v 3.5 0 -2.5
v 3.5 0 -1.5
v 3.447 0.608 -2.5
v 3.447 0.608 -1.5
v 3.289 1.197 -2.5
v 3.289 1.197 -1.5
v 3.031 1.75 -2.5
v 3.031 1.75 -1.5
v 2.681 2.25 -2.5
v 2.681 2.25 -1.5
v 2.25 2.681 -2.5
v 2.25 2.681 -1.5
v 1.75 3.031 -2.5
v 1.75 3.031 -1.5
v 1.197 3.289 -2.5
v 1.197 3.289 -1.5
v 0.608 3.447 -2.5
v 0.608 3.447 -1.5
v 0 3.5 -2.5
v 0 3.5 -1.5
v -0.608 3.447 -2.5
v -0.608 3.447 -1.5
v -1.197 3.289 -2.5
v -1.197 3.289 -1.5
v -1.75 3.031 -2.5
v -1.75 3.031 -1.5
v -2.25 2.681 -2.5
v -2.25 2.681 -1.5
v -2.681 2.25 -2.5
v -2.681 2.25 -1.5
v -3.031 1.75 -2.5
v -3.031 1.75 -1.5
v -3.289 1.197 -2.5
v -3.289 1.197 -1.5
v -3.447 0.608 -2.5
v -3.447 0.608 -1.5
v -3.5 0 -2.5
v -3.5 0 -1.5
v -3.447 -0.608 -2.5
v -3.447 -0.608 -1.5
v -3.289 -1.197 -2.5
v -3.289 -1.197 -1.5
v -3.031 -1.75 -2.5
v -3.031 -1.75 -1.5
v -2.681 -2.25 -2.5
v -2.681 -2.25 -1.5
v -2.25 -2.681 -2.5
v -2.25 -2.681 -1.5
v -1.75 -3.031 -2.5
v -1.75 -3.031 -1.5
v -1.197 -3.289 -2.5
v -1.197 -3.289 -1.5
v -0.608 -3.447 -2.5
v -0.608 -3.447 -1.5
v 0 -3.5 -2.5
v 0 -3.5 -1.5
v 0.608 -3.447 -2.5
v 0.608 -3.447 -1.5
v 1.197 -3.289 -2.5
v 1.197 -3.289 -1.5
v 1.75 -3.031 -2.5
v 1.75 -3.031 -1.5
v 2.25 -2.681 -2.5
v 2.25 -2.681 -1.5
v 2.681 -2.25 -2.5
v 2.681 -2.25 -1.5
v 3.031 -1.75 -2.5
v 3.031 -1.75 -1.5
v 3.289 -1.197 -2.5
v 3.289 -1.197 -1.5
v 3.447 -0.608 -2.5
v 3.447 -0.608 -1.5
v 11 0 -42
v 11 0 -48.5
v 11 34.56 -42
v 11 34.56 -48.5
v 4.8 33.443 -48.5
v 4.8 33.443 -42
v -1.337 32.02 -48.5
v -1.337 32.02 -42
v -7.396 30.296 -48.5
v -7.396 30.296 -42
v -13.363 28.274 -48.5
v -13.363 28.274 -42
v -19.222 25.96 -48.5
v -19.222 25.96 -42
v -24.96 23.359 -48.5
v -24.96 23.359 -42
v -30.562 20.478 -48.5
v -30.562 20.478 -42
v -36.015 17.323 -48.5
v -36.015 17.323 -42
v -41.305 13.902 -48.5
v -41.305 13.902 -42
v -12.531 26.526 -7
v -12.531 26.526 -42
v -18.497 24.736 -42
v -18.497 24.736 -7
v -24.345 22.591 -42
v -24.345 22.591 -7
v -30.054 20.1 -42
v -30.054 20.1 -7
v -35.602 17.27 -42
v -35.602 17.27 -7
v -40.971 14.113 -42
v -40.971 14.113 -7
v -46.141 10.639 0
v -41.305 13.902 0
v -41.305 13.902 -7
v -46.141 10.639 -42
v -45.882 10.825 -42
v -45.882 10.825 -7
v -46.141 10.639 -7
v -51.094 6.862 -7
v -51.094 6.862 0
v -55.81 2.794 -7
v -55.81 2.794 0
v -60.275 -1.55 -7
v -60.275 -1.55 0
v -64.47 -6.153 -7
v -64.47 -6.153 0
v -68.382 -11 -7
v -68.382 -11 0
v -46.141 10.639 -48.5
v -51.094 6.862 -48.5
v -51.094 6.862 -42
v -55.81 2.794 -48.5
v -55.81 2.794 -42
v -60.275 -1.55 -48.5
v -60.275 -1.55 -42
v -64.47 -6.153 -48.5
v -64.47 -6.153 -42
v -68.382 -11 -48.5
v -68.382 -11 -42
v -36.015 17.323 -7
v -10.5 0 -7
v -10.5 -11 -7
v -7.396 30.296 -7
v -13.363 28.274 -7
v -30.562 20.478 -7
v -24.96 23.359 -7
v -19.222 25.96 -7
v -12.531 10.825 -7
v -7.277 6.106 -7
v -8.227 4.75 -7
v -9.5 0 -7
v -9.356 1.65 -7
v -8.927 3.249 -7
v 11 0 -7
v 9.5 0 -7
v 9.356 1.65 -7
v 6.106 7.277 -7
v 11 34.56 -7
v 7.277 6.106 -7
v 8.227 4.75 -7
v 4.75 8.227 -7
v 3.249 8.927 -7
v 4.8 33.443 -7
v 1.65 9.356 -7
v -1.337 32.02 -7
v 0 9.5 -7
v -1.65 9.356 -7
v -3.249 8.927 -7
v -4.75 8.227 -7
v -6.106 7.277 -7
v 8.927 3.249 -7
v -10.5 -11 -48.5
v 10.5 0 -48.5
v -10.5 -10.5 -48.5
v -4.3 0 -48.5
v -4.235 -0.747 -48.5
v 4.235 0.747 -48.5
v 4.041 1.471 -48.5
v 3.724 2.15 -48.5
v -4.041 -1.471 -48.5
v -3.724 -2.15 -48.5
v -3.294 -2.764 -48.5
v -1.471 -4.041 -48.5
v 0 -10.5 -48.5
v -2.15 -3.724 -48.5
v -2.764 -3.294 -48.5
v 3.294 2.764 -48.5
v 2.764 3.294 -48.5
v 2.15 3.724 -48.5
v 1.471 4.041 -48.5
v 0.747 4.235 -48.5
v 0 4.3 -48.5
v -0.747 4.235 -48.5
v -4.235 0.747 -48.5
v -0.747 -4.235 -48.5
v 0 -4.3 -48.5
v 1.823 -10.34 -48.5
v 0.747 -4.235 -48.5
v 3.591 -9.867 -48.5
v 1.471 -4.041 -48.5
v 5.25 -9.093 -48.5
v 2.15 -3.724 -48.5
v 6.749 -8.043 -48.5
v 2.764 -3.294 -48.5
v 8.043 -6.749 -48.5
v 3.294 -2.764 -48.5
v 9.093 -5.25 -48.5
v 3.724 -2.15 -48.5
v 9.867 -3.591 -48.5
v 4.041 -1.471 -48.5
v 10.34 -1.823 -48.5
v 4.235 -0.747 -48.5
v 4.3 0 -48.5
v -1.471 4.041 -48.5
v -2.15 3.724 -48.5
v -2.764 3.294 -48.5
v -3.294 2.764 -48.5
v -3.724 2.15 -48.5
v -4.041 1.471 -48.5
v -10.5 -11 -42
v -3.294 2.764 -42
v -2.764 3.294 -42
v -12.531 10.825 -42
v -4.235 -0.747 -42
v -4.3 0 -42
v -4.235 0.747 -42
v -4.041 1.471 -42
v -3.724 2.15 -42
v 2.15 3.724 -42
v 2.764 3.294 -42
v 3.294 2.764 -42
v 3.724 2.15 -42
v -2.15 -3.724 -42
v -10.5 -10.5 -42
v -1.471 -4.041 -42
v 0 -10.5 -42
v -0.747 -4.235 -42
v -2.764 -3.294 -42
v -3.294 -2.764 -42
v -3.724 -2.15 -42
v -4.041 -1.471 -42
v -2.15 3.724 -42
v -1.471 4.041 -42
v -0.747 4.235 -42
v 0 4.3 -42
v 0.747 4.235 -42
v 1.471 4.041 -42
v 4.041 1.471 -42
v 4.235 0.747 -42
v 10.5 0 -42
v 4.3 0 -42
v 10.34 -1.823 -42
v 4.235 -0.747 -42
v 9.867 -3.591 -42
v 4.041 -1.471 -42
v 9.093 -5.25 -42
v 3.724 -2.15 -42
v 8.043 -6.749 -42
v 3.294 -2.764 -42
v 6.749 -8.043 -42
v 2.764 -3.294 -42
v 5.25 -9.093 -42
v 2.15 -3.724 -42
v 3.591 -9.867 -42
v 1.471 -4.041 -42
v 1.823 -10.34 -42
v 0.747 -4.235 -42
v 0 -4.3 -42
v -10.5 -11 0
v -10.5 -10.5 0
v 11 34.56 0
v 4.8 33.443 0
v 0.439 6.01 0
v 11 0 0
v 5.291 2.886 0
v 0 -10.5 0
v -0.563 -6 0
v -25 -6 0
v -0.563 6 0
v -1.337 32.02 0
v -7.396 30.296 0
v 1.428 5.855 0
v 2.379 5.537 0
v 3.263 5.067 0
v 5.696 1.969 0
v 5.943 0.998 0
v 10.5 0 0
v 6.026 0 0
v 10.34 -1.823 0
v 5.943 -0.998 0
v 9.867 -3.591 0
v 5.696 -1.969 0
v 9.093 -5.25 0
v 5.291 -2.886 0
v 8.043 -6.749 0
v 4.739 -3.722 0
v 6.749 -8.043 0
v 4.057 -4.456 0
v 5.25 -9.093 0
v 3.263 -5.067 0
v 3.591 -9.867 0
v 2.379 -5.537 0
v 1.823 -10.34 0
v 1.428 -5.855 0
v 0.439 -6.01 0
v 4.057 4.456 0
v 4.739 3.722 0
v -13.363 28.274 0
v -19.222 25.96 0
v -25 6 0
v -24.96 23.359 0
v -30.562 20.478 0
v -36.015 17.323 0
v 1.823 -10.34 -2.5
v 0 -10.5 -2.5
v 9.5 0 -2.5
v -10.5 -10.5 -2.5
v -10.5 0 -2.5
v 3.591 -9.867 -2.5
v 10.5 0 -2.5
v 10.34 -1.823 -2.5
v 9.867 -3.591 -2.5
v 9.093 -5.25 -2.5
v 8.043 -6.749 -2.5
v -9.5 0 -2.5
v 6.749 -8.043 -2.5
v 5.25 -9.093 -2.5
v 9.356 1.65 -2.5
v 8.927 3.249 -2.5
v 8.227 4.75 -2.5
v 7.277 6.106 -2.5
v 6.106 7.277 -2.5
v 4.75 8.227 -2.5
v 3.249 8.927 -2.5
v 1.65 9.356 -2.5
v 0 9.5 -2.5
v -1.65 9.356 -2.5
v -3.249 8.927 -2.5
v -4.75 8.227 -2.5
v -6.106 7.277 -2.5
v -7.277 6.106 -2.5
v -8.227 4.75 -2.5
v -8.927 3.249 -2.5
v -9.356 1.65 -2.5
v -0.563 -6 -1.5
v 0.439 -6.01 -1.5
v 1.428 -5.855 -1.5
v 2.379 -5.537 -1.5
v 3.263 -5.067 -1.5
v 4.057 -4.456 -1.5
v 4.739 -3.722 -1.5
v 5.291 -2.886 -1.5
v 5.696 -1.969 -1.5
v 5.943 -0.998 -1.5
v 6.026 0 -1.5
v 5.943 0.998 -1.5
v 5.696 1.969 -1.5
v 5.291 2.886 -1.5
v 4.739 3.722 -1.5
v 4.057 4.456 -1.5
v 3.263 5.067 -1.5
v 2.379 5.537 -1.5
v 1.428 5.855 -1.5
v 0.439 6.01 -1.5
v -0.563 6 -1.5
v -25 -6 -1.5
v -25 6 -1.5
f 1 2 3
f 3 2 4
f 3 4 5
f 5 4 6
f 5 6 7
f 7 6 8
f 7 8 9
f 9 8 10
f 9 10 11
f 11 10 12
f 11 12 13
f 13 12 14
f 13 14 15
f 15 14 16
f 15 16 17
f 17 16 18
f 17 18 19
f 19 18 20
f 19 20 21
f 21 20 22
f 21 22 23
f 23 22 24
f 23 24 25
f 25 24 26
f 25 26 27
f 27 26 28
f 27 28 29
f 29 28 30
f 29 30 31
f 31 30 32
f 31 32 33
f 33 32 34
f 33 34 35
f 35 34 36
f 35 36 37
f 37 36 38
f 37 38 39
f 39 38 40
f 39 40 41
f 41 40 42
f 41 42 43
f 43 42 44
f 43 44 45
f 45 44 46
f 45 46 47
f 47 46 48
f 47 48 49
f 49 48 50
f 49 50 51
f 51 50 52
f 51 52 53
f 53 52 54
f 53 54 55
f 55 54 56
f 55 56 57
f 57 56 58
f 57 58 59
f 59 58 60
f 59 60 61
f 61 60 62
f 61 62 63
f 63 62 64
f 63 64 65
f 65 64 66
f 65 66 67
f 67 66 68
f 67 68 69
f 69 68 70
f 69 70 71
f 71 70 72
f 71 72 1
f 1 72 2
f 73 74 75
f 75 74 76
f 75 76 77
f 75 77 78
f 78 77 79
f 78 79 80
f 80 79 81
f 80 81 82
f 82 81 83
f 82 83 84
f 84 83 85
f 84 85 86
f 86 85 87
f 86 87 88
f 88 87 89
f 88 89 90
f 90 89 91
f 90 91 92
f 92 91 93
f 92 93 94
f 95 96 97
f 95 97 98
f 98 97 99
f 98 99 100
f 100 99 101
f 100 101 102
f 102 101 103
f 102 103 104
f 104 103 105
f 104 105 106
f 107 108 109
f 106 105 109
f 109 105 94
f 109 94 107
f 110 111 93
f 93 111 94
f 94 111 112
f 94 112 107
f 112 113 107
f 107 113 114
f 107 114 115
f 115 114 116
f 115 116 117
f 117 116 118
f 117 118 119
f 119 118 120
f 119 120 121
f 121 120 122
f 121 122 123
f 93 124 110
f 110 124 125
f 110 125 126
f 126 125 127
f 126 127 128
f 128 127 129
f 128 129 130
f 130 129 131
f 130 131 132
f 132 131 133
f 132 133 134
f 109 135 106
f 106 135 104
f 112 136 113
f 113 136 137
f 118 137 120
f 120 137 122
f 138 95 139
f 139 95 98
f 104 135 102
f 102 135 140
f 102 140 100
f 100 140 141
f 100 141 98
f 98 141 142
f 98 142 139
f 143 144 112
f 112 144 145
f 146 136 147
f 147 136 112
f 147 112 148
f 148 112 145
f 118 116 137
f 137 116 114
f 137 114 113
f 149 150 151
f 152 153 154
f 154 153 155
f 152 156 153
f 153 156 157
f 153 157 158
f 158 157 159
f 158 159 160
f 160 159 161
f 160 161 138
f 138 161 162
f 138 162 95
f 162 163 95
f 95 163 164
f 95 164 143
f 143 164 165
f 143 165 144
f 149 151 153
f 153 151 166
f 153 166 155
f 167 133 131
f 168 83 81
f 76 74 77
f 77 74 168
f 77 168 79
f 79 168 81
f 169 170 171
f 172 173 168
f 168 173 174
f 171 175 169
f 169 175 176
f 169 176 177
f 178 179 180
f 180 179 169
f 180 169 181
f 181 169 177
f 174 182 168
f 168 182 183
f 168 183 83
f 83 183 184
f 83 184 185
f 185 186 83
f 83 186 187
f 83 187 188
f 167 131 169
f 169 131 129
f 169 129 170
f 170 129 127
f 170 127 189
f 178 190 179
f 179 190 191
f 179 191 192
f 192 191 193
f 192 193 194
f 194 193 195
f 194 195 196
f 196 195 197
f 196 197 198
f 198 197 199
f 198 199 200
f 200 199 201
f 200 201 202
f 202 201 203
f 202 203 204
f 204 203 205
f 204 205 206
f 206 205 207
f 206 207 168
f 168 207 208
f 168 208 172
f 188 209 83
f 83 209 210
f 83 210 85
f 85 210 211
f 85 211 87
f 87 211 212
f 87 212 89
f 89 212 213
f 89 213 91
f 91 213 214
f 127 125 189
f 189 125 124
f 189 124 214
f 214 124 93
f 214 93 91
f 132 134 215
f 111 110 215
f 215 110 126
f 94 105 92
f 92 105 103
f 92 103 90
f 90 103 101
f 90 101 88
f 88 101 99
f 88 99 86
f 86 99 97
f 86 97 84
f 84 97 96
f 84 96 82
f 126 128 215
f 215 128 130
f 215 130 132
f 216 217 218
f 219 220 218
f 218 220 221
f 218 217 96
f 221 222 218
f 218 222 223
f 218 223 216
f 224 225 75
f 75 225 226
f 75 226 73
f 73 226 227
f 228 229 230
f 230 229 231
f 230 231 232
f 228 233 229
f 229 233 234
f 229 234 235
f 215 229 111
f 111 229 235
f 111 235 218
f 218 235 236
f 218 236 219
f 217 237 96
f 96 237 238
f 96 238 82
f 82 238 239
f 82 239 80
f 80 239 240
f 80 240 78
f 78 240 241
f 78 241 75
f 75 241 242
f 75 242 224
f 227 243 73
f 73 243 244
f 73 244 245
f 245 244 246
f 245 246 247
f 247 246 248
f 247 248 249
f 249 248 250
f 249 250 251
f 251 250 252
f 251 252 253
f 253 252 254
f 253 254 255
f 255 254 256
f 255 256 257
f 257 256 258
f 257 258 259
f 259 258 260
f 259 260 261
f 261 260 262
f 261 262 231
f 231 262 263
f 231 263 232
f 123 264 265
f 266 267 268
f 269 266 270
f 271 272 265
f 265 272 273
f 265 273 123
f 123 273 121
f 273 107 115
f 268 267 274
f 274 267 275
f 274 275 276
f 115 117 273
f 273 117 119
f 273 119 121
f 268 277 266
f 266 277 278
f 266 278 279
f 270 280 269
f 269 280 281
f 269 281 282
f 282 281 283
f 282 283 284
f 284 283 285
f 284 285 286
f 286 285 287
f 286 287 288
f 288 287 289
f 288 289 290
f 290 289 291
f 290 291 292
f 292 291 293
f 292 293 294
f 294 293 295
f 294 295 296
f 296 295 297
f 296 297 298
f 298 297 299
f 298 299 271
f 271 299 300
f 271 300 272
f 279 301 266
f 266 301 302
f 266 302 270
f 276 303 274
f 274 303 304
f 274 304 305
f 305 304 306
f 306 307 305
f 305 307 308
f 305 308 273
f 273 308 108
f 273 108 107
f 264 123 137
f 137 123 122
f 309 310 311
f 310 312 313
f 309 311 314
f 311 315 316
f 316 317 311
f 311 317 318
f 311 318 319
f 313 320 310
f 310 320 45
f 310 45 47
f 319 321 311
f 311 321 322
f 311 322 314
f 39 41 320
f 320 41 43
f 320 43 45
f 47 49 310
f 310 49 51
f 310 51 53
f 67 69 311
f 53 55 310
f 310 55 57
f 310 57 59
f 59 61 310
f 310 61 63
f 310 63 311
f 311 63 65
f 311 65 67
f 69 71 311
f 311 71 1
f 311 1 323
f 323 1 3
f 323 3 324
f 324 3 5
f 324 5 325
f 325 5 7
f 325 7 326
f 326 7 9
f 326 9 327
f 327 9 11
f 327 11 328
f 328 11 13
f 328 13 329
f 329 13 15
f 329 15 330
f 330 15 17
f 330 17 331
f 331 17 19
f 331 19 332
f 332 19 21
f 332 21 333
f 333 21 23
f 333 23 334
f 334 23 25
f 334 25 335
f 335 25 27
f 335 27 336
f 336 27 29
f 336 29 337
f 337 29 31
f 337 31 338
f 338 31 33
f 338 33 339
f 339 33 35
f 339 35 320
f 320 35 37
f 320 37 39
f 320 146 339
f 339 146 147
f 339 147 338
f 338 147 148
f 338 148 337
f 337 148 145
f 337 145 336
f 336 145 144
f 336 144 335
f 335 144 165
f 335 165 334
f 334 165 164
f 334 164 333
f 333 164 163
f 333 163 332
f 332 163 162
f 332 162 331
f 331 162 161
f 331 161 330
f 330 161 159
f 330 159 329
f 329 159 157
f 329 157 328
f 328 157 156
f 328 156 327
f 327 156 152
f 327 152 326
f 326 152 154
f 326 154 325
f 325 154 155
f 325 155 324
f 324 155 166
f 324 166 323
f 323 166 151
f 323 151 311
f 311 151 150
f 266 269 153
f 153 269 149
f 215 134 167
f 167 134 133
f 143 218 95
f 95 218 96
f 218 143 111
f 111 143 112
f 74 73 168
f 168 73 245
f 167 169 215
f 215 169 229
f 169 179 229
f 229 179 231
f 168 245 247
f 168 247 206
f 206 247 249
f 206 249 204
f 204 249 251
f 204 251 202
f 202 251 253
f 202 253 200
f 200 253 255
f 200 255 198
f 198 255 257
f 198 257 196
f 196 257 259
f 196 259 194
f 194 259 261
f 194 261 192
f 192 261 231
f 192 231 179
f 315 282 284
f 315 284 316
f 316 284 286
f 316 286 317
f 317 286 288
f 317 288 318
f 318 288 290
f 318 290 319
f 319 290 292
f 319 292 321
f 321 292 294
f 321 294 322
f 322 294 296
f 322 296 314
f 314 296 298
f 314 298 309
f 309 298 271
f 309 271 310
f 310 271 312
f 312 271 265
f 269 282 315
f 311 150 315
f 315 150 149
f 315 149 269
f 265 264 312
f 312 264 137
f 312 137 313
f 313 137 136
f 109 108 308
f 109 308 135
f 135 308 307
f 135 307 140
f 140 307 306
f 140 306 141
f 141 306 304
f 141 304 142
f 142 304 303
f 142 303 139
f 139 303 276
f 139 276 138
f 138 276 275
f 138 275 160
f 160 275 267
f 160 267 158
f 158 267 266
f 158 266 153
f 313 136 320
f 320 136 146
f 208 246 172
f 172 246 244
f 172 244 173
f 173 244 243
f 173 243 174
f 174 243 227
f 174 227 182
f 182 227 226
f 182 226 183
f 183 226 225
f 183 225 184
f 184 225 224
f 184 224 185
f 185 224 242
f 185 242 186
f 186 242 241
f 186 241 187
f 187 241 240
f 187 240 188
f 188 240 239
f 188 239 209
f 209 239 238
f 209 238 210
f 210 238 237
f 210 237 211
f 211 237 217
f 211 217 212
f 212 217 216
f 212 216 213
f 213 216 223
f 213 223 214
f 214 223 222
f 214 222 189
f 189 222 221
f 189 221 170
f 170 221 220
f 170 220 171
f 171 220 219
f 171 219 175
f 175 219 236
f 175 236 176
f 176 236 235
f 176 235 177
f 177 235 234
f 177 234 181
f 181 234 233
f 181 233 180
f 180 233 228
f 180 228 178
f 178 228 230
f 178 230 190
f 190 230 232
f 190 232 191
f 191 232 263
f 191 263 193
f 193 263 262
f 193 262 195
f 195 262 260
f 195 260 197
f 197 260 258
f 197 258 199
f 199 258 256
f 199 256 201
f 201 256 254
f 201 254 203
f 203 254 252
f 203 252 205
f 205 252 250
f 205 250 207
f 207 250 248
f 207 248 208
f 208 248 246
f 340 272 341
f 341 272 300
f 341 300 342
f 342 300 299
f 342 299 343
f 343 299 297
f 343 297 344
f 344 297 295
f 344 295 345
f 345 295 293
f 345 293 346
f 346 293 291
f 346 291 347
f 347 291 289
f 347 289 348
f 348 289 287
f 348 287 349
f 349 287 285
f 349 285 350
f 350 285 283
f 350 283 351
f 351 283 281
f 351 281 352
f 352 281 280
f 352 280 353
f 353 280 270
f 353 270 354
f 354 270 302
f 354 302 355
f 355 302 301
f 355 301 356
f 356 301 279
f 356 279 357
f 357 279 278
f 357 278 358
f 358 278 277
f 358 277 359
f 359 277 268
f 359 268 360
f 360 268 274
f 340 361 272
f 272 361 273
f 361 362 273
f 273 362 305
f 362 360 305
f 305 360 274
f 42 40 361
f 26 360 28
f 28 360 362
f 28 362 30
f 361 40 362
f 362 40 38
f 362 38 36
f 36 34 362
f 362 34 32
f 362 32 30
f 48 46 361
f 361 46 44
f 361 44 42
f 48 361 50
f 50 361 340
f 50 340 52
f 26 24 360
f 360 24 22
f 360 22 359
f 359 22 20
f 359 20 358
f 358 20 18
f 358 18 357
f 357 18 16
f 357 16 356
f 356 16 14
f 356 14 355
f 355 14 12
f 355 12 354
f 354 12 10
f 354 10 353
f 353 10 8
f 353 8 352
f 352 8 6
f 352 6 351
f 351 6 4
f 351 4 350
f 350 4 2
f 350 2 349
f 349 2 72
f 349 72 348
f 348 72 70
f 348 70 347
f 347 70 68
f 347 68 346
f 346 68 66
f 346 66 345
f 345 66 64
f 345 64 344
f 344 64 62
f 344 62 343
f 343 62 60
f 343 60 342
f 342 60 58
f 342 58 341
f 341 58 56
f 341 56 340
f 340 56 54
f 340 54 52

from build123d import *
from build123d.topology import SkipClean

# Parameters (mm, degrees)
SKETCH1_R                 = 9.5
BOSS_EXTRUDE1_DEPTH       = 48
SKETCH2_W                 = 34
SKETCH2_H                 = 30
CUT_EXTRUDE1_DEPTH        = 62.481704596
BOSS_EXTRUDE2_START       = -2.5
SKETCH3_R                 = 9.5
SKETCH3_R_2               = 2.4
BOSS_EXTRUDE2_DEPTH       = 2.5
SKETCH4_R                 = 9.5
SKETCH4_R_2               = 4.2
BOSS_EXTRUDE3_DEPTH       = 7
SKETCH5_R                 = 4.2
BOSS_EXTRUDE4_DEPTH       = 11
BOSS_EXTRUDE5_DEPTH       = 48
CUT_EXTRUDE2_START        = -48
CUT_EXTRUDE2_OUTLINE_R    = 2.65
CUT_EXTRUDE2_DEPTH        = 48
CUT_EXTRUDE3_START        = -4.5
SKETCH8_R                 = 9.5
CUT_EXTRUDE3_DEPTH        = 4.5
SKETCH9_R                 = 6.067807638
CUT_EXTRUDE4_DEPTH        = 4.5
SKETCH10_R                = 9.5
BOSS_EXTRUDE6_DEPTH       = 4.5
SKETCH11_R                = 4.2
BOSS_EXTRUDE7_DEPTH       = 3.5
SKETCH12_R                = 2.4
BOSS_EXTRUDE8_DEPTH       = 2.5
SKETCH13_W                = 35
SKETCH13_H                = 34
CUT_EXTRUDE5_DEPTH        = 14.5
SKETCH15_R                = 3.436413098
BOSS_EXTRUDE9_DEPTH       = 10
BOSS_EXTRUDE10_DEPTH      = 0.5
SKETCH18_R                = 4.2
CUT_EXTRUDE8_DEPTH        = 0.5
CUT_EXTRUDE9_DEPTH        = 69.529190861
BOSS_EXTRUDE11_DEPTH      = 7
CUT_EXTRUDE10_DEPTH       = 99.245865053
BOSS_EXTRUDE12_DEPTH      = 41.5
SKETCH25_R                = 4.2
CUT_EXTRUDE11_DEPTH       = 0.5
CUT_EXTRUDE12_DEPTH       = 99.245865053
BOSS_EXTRUDE13_DEPTH      = 20.5
BOSS_EXTRUDE13_DEPTH_BACK = 20.5
CUT_EXTRUDE14_DEPTH       = 91.289811164
CUT_EXTRUDE15_DEPTH       = 90.647860543
SKETCH31_R                = 2.65
SKETCH31_R_2              = 2.5
BOSS_EXTRUDE14_DEPTH      = 2.5
CUT_EXTRUDE16_DEPTH       = 90.041304074
BOSS_EXTRUDE15_DEPTH      = 7
CUT_EXTRUDE17_DEPTH       = 17.75
CUT_EXTRUDE18_DEPTH       = 21.75
SKETCH38_R                = 4.3
CUT_EXTRUDE20_DEPTH       = 81.365166156
SKETCH39_R                = 3.5
CUT_EXTRUDE21_DEPTH       = 91.679366072
CUT_EXTRUDE22_DEPTH       = 1.5


# Read off the part's stored shape, not the designer's step: Cut-Extrude2
with BuildPart() as part:
    # Sketch1 → Boss-Extrude1 (new body)
    with BuildSketch(Plane.XY):
        with BuildLine():
            Line((-12, 0), (-12, 30))
            Line((-12, 30), (12, 30))
            Line((12, 30), (12, 0))
            ThreePointArc((12, 0), (0, -12), (-12, 0))
        make_face()
        Circle(SKETCH1_R, mode=Mode.SUBTRACT)
    extrude(amount=-BOSS_EXTRUDE1_DEPTH)

    # Sketch2 → Cut-Extrude1 (cut, through all)
    with BuildSketch(Plane.ZY.offset(12)):
        with Locations((-24, 3)):
            Rectangle(SKETCH2_W, SKETCH2_H)
    extrude(amount=-CUT_EXTRUDE1_DEPTH, mode=Mode.SUBTRACT)

    # Sketch3 → Boss-Extrude2 (add)
    with BuildSketch(Plane(origin=(0, 0, -48), x_dir=(-1, 0, 0), z_dir=(0, 0, -1)).offset(BOSS_EXTRUDE2_START)):
        Circle(SKETCH3_R)
        Circle(SKETCH3_R_2, mode=Mode.SUBTRACT)
    extrude(amount=BOSS_EXTRUDE2_DEPTH)

    # Sketch4 → Boss-Extrude3 (add)
    with BuildSketch(Plane.XY):
        with Locations(Location((0, 0, 0), (0, 0, 180))):
            Circle(SKETCH4_R)
        Circle(SKETCH4_R_2, mode=Mode.SUBTRACT)
    extrude(amount=-BOSS_EXTRUDE3_DEPTH)

    # Sketch5 → Boss-Extrude4 (add)
    with BuildSketch(Plane.XY):
        Circle(SKETCH5_R)
    extrude(amount=-BOSS_EXTRUDE4_DEPTH)

    # Sketch6 → Boss-Extrude5 (add)
    with BuildSketch(Plane(origin=(0, 0, -48), x_dir=(-1, 0, 0), z_dir=(0, 0, -1))):
        Polygon((12, 30), (12, 18), (18, 18), (38, 18), (38, 30), align=None)
    extrude(amount=-BOSS_EXTRUDE5_DEPTH)

    # Cut-Extrude2 outline → Cut-Extrude2 (cut)
    with BuildSketch(Plane.XY.offset(CUT_EXTRUDE2_START)):
        Circle(CUT_EXTRUDE2_OUTLINE_R)
    extrude(amount=CUT_EXTRUDE2_DEPTH, mode=Mode.SUBTRACT)

    # Sketch8 → Cut-Extrude3 (cut)
    with BuildSketch(Plane(origin=(0, 0, -7), x_dir=(-1, 0, 0), z_dir=(0, 0, -1)).offset(CUT_EXTRUDE3_START)):
        Circle(SKETCH8_R)
    extrude(amount=CUT_EXTRUDE3_DEPTH, mode=Mode.SUBTRACT)


with BuildPart() as cut_extrude3_piece_1:
    # of the separate pieces the step leaves, piece 1, a body of its own (cut_extrude3_pieces)
    add(part.part.solids().sort_by_distance((-12, 0, 0))[0])

    # Sketch10 → Boss-Extrude6 (add)
    with BuildSketch(Plane.XY.offset(-45.5)):
        with Locations(Location((0, 0, 0), (0, 0, 90))):
            Circle(SKETCH10_R)
    extrude(amount=BOSS_EXTRUDE6_DEPTH)

    # Sketch11 → Boss-Extrude7 (add)
    with BuildSketch(Plane.XY.offset(-41)):
        with Locations(Location((0, 0, 0), (0, 0, 180))):
            Circle(SKETCH11_R)
    extrude(amount=BOSS_EXTRUDE7_DEPTH)

    # Sketch12 → Boss-Extrude8 (add)
    with BuildSketch(Plane(origin=(0, 0, -48), x_dir=(-1, 0, 0), z_dir=(0, 0, -1))):
        Circle(SKETCH12_R)
    extrude(amount=-BOSS_EXTRUDE8_DEPTH)

    # Sketch13 → Cut-Extrude5 (cut)
    with BuildSketch(Plane(origin=(0, 30, 0), x_dir=(1, 0, 0), z_dir=(0, 1, 0))):
        with Locations((-5.5, 24)):
            Rectangle(SKETCH13_W, SKETCH13_H)
    extrude(amount=-CUT_EXTRUDE5_DEPTH, mode=Mode.SUBTRACT)

    # Sketch15 → Boss-Extrude9 (add)
    with BuildSketch(Plane(origin=(0, 0, -48), x_dir=(-1, 0, 0), z_dir=(0, 0, -1))):
        Circle(SKETCH15_R)
    extrude(amount=-BOSS_EXTRUDE9_DEPTH)

    # Sketch16 → Boss-Extrude10 (add)
    with BuildSketch(Plane(origin=(0, 0, -48), x_dir=(-1, 0, 0), z_dir=(0, 0, -1))):
        Polygon((38, 30), (-12, 30), (-12, 18), (12, 18), (38, 18), align=None)
        with BuildLine():
            Line((-12, 0), (12, 0))
            ThreePointArc((12, 0), (0, -12), (-12, 0))
        make_face()
        with BuildLine():
            ThreePointArc((12, 0), (0, 12), (-12, 0))
            Line((-12, 0), (12, 0))
        make_face()
        with BuildLine():
            Line((12, 0), (-12, 0))
            ThreePointArc((-12, 0), (0, -12), (12, 0))
        make_face()
        with BuildLine():
            Line((12, 18), (-12, 18))
            Line((-12, 18), (-12, 0))
            ThreePointArc((-12, 0), (0, 12), (12, 0))
            Line((12, 0), (12, 18))
        make_face()
    extrude(amount=BOSS_EXTRUDE10_DEPTH)

    # Sketch18 → Cut-Extrude8 (cut)
    with SkipClean():  # the faces are left unmerged after this step: merging them gives an invalid solid
        with BuildSketch(Plane.XY.offset(-41)):
            with BuildLine():
                Line((12, 30), (-23, 30))
                Line((-23, 30), (-23, 18))
                Line((-23, 18), (-12, 18))
                Line((-12, 18), (-12, 0))
                ThreePointArc((-12, 0), (0, -12), (12, 0))
                Line((12, 0), (12, 30))
            make_face()
            Circle(SKETCH18_R, mode=Mode.SUBTRACT)
        extrude(amount=-CUT_EXTRUDE8_DEPTH, mode=Mode.SUBTRACT)

    # Sketch19 → Cut-Extrude9 (cut, through all)
    with SkipClean():  # the faces are left unmerged after this step: merging them gives an invalid solid
        with BuildSketch(Plane.XY):
            with BuildLine():
                ThreePointArc((11, 0), (0, -11), (-11, 0))
                Line((-11, 0), (-12, 0))
                ThreePointArc((-12, 0), (0, -12), (12, 0))
                Line((12, 0), (12, 30))
                Line((12, 30), (11, 30))
                Line((11, 30), (11, 0))
            make_face()
        extrude(amount=-CUT_EXTRUDE9_DEPTH, mode=Mode.SUBTRACT)

    # Sketch21 → Boss-Extrude11 (add)
    with SkipClean():  # the faces are left unmerged after this step: merging them gives an invalid solid
        with BuildSketch(Plane.XY):
            with BuildLine():
                Line((-80, -11), (0, -11))
                ThreePointArc((0, -11), (-11, 0), (0, 11))
                Line((0, 11), (0, 29.50098276))
                ThreePointArc((0, 29.50098276), (-43.873330509, 16.901328954), (-80, -11))
            make_face()
        boss_extrude11 = extrude(amount=-BOSS_EXTRUDE11_DEPTH)

    # Mirror2: Boss-Extrude11 across plane
    with SkipClean():  # the faces are left unmerged after this step: merging them gives an invalid solid
        add(boss_extrude11.mirror(Plane.XY.offset(-24.25)))

    # Sketch23 → Cut-Extrude10 (cut, through all)
    with SkipClean():  # the faces are left unmerged after this step: merging them gives an invalid solid
        with BuildSketch(Plane.XY):
            with BuildLine():
                Line((11, 30), (-38, 30))
                Line((-38, 30), (-38, 19.680026504))
                ThreePointArc((-38, 19.680026504), (-14.037481168, 27.392013724), (11, 30))
            make_face()
        extrude(amount=-CUT_EXTRUDE10_DEPTH, mode=Mode.SUBTRACT)

    # Sketch24 → Boss-Extrude12 (add)
    with BuildSketch(Plane.XY):
        with BuildLine():
            ThreePointArc((-23, 25.145323924), (-54.06051883, 11.110516861), (-80, -11))
            Line((-80, -11), (-75.954431576, -11))
            ThreePointArc((-75.954431576, -11), (-51.689916224, 9.05738053), (-23, 22.017084465))
            Line((-23, 22.017084465), (-23, 25.145323924))
        make_face()
    extrude(amount=-BOSS_EXTRUDE12_DEPTH)

    # Sketch25 → Cut-Extrude11 (cut)
    # profile 1 of 4: a face of its own
    with BuildSketch(Plane.XY.offset(-41.5)):
        with BuildLine():
            ThreePointArc((-34.296583622, 18), (-56.696622923, 5.756871838), (-75.954431576, -11))
            Line((-75.954431576, -11), (0, -11))
            ThreePointArc((0, -11), (-7.778174593, 7.778174593), (11, 0))
            Line((11, 0), (11, 27))
            ThreePointArc((11, 27), (-6.181599512, 25.747652826), (-23, 22.017084465))
            Line((-23, 22.017084465), (-23, 18))
            Line((-23, 18), (-34.296583622, 18))
        make_face()
    # profile 2 of 4: a face of its own
    with BuildSketch(Plane.XY.offset(-41.5)):
        with BuildLine():
            ThreePointArc((11, 0), (-7.778174593, 7.778174593), (0, -11))
            ThreePointArc((0, -11), (7.778174593, -7.778174593), (11, 0))
        make_face()
        Circle(SKETCH25_R, mode=Mode.SUBTRACT)
    # profile 3 of 4: a face of its own
    with BuildSketch(Plane.XY.offset(-41.5)):
        with BuildLine():
            Line((-15.831452239, 27), (11, 27))
            Line((11, 27), (11, 30))
            ThreePointArc((11, 30), (-2.499322476, 29.24767055), (-15.831452239, 27))
        make_face()
    # profile 4 of 4: a face of its own
    with BuildSketch(Plane.XY.offset(-41.5)):
        with BuildLine():
            ThreePointArc((-15.831452239, 27), (-19.429859533, 26.127289319), (-23, 25.145323924))
            Line((-23, 25.145323924), (-23, 22.017084465))
            ThreePointArc((-23, 22.017084465), (-6.181599512, 25.747652826), (11, 27))
            Line((11, 27), (-15.831452239, 27))
        make_face()
    extrude(amount=-CUT_EXTRUDE11_DEPTH, mode=Mode.SUBTRACT)

    # Sketch26 → Cut-Extrude12 (cut, through all)
    with BuildSketch(Plane.XY):
        with BuildLine():
            Line((-289.619638312, -11), (-80, -11))
            Line((-80, -11), (-70, -11))
            ThreePointArc((-70, -11), (-34.238011767, 18.860462272), (11, 30))
            Line((11, 30), (220.598190616, 32.998542465))
            Line((220.598190616, 32.998542465), (184.578847054, 450.687634918))
            Line((184.578847054, 450.687634918), (-325.638981874, 406.689092453))
            Line((-325.638981874, 406.689092453), (-289.619638312, -11))
        make_face()
    extrude(amount=-CUT_EXTRUDE12_DEPTH, mode=Mode.SUBTRACT)

    # Sketch27 → Boss-Extrude13 (add, two sides: drawn at the far end of the back side and taken through both)
    with SkipClean():  # the faces are left unmerged after this step: merging them gives an invalid solid
        with BuildSketch(Plane.XY.offset(-24.25).offset(-BOSS_EXTRUDE13_DEPTH_BACK)):
            with BuildLine():
                Line((-47.531279655, 10.824644679), (-12.531279655, 10.824644679))
                Line((-12.531279655, 10.824644679), (-12.531279655, 26.941493444))
                ThreePointArc((-12.531279655, 26.941493444), (-30.78831932, 20.527086985), (-47.531279655, 10.824644679))
            make_face()
        extrude(amount=BOSS_EXTRUDE13_DEPTH + BOSS_EXTRUDE13_DEPTH_BACK)

    # Sketch28 → Cut-Extrude14 (cut, through all)
    with BuildSketch(Plane.XY):
        with BuildLine():
            ThreePointArc((11, 30), (-34.238011767, 18.860462272), (-70, -11))
            Line((-70, -11), (-69.17, -11))
            ThreePointArc((-69.17, -11), (-33.867981255, 18.852478225), (11, 30))
        make_face()
    extrude(amount=-CUT_EXTRUDE14_DEPTH, mode=Mode.SUBTRACT)

    # Sketch30 → Cut-Extrude15 (cut, through all)
    with BuildSketch(Plane.XY):
        with BuildLine():
            Line((-69.17, -11), (-68.382043193, -11))
            ThreePointArc((-68.382043193, -11), (-33.329298575, 18.480387889), (11, 30))
            ThreePointArc((11, 30), (-33.867981255, 18.852478225), (-69.17, -11))
        make_face()
    extrude(amount=-CUT_EXTRUDE15_DEPTH, mode=Mode.SUBTRACT)

    # Sketch31 → Boss-Extrude14 (add)
    with BuildSketch(Plane.XY):
        Circle(SKETCH31_R)
        Circle(SKETCH31_R_2, mode=Mode.SUBTRACT)
    extrude(amount=-BOSS_EXTRUDE14_DEPTH)

    # Sketch32 → Cut-Extrude16 (cut, through all)
    with BuildSketch(Plane.XY):
        with BuildLine():
            Line((0, -10.5), (-10.5, -10.5))
            Line((-10.5, -10.5), (-10.5, -11))
            Line((-10.5, -11), (0, -11))
            ThreePointArc((0, -11), (7.778174593, -7.778174593), (11, 0))
            Line((11, 0), (10.5, 0))
            ThreePointArc((10.5, 0), (7.424621202, -7.424621202), (0, -10.5))
        make_face()
    extrude(amount=-CUT_EXTRUDE16_DEPTH, mode=Mode.SUBTRACT)

    # Sketch33 → Boss-Extrude15 (add)
    with BuildSketch(Plane.XY):
        with BuildLine():
            Line((11, 30), (11, 34.56))
            ThreePointArc((11, 34.56), (-16.306713668, 27.153418453), (-41.30515803, 13.902311291))
            ThreePointArc((-41.30515803, 13.902311291), (-16.232852944, 25.461218463), (11, 30))
        make_face()
    boss_extrude15 = extrude(amount=-BOSS_EXTRUDE15_DEPTH)

    # Mirror3: Boss-Extrude15 across plane
    add(boss_extrude15.mirror(Plane.XY.offset(-24.25)))

    # Sketch34 → Cut-Extrude17 (cut)
    with BuildSketch(Plane.XY.offset(-24.25)):
        with BuildLine():
            Line((11, 30), (11, 34.56))
            ThreePointArc((11, 34.56), (-16.306713668, 27.153418453), (-41.30515803, 13.902311291))
            ThreePointArc((-41.30515803, 13.902311291), (-27.398755364, 21.309324072), (-12.531279655, 26.525648402))
            ThreePointArc((-12.531279655, 26.525648402), (-0.865514718, 28.939262351), (11, 30))
        make_face()
    extrude(amount=-CUT_EXTRUDE17_DEPTH, mode=Mode.SUBTRACT)

    # Sketch37 → Cut-Extrude18 (cut)
    with BuildSketch(Plane.XY.offset(-24.25)):
        with BuildLine():
            Line((-10.5, 0), (-10.5, -10.5))
            Line((-10.5, -10.5), (0, -10.5))
            ThreePointArc((0, -10.5), (7.424621202, -7.424621202), (10.5, 0))
            Line((10.5, 0), (9.5, 0))
            ThreePointArc((9.5, 0), (0, -9.5), (-9.5, 0))
            Line((-9.5, 0), (-10.5, 0))
        make_face()
        with BuildLine():
            ThreePointArc((10.5, 0), (7.424621202, -7.424621202), (0, -10.5))
            Line((0, -10.5), (11, -10.5))
            Line((11, -10.5), (11, 0))
            Line((11, 0), (10.5, 0))
        make_face()
    extrude(amount=CUT_EXTRUDE18_DEPTH, mode=Mode.SUBTRACT)

    # Sketch38 → Cut-Extrude20 (cut, through all)
    with BuildSketch(Plane.XY.offset(-24.25)):
        Circle(SKETCH38_R)
    extrude(amount=-CUT_EXTRUDE20_DEPTH, mode=Mode.SUBTRACT)

    # Sketch39 → Cut-Extrude21 (cut, through all)
    with BuildSketch(Plane.XY):
        Circle(SKETCH39_R)
    extrude(amount=-CUT_EXTRUDE21_DEPTH, mode=Mode.SUBTRACT)

    # Sketch40 → Cut-Extrude22 (cut)
    with BuildSketch(Plane.XY):
        with BuildLine():
            ThreePointArc((-0.563204585, -6), (-6.026375312, 0), (-0.563204585, 6))
            Line((-0.563204585, 6), (-25, 6))
            Line((-25, 6), (-25, -6))
            Line((-25, -6), (-0.563204585, -6))
        make_face()
        with BuildLine():
            Line((0, 3.5), (0, 6))
            Line((0, 6), (-0.563204585, 6))
            ThreePointArc((-0.563204585, 6), (-6.026375312, 0), (-0.563204585, -6))
            Line((-0.563204585, -6), (0, -6))
            Line((0, -6), (0, -3.5))
            ThreePointArc((0, -3.5), (-3.5, 0), (0, 3.5))
        make_face()
        with BuildLine():
            Line((-0.563204585, 6), (0, 6))
            Line((0, 6), (0, 3.5))
            ThreePointArc((0, 3.5), (2.474873734, 2.474873734), (3.5, 0))
            ThreePointArc((3.5, 0), (2.474873734, -2.474873734), (0, -3.5))
            Line((0, -3.5), (0, -6))
            Line((0, -6), (-0.563204585, -6))
            ThreePointArc((-0.563204585, -6), (4.057284634, -4.455966877), (6.026375312, 0))
            ThreePointArc((6.026375312, 0), (4.057284634, 4.455966877), (-0.563204585, 6))
        make_face()
    extrude(amount=-CUT_EXTRUDE22_DEPTH, mode=Mode.SUBTRACT)


with BuildPart() as cut_extrude3_piece_2:
    # of the separate pieces the step leaves, piece 2, a body of its own (cut_extrude3_pieces)
    add(part.part.solids().sort_by_distance((4.2, 0, -7))[0])

    # Sketch9 → Cut-Extrude4 (cut)
    with BuildSketch(Plane(origin=(0, 0, -11), x_dir=(-1, 0, 0), z_dir=(0, 0, -1))):
        Circle(SKETCH9_R)
    extrude(amount=-CUT_EXTRUDE4_DEPTH, mode=Mode.SUBTRACT)


solid = cut_extrude3_piece_1.part
